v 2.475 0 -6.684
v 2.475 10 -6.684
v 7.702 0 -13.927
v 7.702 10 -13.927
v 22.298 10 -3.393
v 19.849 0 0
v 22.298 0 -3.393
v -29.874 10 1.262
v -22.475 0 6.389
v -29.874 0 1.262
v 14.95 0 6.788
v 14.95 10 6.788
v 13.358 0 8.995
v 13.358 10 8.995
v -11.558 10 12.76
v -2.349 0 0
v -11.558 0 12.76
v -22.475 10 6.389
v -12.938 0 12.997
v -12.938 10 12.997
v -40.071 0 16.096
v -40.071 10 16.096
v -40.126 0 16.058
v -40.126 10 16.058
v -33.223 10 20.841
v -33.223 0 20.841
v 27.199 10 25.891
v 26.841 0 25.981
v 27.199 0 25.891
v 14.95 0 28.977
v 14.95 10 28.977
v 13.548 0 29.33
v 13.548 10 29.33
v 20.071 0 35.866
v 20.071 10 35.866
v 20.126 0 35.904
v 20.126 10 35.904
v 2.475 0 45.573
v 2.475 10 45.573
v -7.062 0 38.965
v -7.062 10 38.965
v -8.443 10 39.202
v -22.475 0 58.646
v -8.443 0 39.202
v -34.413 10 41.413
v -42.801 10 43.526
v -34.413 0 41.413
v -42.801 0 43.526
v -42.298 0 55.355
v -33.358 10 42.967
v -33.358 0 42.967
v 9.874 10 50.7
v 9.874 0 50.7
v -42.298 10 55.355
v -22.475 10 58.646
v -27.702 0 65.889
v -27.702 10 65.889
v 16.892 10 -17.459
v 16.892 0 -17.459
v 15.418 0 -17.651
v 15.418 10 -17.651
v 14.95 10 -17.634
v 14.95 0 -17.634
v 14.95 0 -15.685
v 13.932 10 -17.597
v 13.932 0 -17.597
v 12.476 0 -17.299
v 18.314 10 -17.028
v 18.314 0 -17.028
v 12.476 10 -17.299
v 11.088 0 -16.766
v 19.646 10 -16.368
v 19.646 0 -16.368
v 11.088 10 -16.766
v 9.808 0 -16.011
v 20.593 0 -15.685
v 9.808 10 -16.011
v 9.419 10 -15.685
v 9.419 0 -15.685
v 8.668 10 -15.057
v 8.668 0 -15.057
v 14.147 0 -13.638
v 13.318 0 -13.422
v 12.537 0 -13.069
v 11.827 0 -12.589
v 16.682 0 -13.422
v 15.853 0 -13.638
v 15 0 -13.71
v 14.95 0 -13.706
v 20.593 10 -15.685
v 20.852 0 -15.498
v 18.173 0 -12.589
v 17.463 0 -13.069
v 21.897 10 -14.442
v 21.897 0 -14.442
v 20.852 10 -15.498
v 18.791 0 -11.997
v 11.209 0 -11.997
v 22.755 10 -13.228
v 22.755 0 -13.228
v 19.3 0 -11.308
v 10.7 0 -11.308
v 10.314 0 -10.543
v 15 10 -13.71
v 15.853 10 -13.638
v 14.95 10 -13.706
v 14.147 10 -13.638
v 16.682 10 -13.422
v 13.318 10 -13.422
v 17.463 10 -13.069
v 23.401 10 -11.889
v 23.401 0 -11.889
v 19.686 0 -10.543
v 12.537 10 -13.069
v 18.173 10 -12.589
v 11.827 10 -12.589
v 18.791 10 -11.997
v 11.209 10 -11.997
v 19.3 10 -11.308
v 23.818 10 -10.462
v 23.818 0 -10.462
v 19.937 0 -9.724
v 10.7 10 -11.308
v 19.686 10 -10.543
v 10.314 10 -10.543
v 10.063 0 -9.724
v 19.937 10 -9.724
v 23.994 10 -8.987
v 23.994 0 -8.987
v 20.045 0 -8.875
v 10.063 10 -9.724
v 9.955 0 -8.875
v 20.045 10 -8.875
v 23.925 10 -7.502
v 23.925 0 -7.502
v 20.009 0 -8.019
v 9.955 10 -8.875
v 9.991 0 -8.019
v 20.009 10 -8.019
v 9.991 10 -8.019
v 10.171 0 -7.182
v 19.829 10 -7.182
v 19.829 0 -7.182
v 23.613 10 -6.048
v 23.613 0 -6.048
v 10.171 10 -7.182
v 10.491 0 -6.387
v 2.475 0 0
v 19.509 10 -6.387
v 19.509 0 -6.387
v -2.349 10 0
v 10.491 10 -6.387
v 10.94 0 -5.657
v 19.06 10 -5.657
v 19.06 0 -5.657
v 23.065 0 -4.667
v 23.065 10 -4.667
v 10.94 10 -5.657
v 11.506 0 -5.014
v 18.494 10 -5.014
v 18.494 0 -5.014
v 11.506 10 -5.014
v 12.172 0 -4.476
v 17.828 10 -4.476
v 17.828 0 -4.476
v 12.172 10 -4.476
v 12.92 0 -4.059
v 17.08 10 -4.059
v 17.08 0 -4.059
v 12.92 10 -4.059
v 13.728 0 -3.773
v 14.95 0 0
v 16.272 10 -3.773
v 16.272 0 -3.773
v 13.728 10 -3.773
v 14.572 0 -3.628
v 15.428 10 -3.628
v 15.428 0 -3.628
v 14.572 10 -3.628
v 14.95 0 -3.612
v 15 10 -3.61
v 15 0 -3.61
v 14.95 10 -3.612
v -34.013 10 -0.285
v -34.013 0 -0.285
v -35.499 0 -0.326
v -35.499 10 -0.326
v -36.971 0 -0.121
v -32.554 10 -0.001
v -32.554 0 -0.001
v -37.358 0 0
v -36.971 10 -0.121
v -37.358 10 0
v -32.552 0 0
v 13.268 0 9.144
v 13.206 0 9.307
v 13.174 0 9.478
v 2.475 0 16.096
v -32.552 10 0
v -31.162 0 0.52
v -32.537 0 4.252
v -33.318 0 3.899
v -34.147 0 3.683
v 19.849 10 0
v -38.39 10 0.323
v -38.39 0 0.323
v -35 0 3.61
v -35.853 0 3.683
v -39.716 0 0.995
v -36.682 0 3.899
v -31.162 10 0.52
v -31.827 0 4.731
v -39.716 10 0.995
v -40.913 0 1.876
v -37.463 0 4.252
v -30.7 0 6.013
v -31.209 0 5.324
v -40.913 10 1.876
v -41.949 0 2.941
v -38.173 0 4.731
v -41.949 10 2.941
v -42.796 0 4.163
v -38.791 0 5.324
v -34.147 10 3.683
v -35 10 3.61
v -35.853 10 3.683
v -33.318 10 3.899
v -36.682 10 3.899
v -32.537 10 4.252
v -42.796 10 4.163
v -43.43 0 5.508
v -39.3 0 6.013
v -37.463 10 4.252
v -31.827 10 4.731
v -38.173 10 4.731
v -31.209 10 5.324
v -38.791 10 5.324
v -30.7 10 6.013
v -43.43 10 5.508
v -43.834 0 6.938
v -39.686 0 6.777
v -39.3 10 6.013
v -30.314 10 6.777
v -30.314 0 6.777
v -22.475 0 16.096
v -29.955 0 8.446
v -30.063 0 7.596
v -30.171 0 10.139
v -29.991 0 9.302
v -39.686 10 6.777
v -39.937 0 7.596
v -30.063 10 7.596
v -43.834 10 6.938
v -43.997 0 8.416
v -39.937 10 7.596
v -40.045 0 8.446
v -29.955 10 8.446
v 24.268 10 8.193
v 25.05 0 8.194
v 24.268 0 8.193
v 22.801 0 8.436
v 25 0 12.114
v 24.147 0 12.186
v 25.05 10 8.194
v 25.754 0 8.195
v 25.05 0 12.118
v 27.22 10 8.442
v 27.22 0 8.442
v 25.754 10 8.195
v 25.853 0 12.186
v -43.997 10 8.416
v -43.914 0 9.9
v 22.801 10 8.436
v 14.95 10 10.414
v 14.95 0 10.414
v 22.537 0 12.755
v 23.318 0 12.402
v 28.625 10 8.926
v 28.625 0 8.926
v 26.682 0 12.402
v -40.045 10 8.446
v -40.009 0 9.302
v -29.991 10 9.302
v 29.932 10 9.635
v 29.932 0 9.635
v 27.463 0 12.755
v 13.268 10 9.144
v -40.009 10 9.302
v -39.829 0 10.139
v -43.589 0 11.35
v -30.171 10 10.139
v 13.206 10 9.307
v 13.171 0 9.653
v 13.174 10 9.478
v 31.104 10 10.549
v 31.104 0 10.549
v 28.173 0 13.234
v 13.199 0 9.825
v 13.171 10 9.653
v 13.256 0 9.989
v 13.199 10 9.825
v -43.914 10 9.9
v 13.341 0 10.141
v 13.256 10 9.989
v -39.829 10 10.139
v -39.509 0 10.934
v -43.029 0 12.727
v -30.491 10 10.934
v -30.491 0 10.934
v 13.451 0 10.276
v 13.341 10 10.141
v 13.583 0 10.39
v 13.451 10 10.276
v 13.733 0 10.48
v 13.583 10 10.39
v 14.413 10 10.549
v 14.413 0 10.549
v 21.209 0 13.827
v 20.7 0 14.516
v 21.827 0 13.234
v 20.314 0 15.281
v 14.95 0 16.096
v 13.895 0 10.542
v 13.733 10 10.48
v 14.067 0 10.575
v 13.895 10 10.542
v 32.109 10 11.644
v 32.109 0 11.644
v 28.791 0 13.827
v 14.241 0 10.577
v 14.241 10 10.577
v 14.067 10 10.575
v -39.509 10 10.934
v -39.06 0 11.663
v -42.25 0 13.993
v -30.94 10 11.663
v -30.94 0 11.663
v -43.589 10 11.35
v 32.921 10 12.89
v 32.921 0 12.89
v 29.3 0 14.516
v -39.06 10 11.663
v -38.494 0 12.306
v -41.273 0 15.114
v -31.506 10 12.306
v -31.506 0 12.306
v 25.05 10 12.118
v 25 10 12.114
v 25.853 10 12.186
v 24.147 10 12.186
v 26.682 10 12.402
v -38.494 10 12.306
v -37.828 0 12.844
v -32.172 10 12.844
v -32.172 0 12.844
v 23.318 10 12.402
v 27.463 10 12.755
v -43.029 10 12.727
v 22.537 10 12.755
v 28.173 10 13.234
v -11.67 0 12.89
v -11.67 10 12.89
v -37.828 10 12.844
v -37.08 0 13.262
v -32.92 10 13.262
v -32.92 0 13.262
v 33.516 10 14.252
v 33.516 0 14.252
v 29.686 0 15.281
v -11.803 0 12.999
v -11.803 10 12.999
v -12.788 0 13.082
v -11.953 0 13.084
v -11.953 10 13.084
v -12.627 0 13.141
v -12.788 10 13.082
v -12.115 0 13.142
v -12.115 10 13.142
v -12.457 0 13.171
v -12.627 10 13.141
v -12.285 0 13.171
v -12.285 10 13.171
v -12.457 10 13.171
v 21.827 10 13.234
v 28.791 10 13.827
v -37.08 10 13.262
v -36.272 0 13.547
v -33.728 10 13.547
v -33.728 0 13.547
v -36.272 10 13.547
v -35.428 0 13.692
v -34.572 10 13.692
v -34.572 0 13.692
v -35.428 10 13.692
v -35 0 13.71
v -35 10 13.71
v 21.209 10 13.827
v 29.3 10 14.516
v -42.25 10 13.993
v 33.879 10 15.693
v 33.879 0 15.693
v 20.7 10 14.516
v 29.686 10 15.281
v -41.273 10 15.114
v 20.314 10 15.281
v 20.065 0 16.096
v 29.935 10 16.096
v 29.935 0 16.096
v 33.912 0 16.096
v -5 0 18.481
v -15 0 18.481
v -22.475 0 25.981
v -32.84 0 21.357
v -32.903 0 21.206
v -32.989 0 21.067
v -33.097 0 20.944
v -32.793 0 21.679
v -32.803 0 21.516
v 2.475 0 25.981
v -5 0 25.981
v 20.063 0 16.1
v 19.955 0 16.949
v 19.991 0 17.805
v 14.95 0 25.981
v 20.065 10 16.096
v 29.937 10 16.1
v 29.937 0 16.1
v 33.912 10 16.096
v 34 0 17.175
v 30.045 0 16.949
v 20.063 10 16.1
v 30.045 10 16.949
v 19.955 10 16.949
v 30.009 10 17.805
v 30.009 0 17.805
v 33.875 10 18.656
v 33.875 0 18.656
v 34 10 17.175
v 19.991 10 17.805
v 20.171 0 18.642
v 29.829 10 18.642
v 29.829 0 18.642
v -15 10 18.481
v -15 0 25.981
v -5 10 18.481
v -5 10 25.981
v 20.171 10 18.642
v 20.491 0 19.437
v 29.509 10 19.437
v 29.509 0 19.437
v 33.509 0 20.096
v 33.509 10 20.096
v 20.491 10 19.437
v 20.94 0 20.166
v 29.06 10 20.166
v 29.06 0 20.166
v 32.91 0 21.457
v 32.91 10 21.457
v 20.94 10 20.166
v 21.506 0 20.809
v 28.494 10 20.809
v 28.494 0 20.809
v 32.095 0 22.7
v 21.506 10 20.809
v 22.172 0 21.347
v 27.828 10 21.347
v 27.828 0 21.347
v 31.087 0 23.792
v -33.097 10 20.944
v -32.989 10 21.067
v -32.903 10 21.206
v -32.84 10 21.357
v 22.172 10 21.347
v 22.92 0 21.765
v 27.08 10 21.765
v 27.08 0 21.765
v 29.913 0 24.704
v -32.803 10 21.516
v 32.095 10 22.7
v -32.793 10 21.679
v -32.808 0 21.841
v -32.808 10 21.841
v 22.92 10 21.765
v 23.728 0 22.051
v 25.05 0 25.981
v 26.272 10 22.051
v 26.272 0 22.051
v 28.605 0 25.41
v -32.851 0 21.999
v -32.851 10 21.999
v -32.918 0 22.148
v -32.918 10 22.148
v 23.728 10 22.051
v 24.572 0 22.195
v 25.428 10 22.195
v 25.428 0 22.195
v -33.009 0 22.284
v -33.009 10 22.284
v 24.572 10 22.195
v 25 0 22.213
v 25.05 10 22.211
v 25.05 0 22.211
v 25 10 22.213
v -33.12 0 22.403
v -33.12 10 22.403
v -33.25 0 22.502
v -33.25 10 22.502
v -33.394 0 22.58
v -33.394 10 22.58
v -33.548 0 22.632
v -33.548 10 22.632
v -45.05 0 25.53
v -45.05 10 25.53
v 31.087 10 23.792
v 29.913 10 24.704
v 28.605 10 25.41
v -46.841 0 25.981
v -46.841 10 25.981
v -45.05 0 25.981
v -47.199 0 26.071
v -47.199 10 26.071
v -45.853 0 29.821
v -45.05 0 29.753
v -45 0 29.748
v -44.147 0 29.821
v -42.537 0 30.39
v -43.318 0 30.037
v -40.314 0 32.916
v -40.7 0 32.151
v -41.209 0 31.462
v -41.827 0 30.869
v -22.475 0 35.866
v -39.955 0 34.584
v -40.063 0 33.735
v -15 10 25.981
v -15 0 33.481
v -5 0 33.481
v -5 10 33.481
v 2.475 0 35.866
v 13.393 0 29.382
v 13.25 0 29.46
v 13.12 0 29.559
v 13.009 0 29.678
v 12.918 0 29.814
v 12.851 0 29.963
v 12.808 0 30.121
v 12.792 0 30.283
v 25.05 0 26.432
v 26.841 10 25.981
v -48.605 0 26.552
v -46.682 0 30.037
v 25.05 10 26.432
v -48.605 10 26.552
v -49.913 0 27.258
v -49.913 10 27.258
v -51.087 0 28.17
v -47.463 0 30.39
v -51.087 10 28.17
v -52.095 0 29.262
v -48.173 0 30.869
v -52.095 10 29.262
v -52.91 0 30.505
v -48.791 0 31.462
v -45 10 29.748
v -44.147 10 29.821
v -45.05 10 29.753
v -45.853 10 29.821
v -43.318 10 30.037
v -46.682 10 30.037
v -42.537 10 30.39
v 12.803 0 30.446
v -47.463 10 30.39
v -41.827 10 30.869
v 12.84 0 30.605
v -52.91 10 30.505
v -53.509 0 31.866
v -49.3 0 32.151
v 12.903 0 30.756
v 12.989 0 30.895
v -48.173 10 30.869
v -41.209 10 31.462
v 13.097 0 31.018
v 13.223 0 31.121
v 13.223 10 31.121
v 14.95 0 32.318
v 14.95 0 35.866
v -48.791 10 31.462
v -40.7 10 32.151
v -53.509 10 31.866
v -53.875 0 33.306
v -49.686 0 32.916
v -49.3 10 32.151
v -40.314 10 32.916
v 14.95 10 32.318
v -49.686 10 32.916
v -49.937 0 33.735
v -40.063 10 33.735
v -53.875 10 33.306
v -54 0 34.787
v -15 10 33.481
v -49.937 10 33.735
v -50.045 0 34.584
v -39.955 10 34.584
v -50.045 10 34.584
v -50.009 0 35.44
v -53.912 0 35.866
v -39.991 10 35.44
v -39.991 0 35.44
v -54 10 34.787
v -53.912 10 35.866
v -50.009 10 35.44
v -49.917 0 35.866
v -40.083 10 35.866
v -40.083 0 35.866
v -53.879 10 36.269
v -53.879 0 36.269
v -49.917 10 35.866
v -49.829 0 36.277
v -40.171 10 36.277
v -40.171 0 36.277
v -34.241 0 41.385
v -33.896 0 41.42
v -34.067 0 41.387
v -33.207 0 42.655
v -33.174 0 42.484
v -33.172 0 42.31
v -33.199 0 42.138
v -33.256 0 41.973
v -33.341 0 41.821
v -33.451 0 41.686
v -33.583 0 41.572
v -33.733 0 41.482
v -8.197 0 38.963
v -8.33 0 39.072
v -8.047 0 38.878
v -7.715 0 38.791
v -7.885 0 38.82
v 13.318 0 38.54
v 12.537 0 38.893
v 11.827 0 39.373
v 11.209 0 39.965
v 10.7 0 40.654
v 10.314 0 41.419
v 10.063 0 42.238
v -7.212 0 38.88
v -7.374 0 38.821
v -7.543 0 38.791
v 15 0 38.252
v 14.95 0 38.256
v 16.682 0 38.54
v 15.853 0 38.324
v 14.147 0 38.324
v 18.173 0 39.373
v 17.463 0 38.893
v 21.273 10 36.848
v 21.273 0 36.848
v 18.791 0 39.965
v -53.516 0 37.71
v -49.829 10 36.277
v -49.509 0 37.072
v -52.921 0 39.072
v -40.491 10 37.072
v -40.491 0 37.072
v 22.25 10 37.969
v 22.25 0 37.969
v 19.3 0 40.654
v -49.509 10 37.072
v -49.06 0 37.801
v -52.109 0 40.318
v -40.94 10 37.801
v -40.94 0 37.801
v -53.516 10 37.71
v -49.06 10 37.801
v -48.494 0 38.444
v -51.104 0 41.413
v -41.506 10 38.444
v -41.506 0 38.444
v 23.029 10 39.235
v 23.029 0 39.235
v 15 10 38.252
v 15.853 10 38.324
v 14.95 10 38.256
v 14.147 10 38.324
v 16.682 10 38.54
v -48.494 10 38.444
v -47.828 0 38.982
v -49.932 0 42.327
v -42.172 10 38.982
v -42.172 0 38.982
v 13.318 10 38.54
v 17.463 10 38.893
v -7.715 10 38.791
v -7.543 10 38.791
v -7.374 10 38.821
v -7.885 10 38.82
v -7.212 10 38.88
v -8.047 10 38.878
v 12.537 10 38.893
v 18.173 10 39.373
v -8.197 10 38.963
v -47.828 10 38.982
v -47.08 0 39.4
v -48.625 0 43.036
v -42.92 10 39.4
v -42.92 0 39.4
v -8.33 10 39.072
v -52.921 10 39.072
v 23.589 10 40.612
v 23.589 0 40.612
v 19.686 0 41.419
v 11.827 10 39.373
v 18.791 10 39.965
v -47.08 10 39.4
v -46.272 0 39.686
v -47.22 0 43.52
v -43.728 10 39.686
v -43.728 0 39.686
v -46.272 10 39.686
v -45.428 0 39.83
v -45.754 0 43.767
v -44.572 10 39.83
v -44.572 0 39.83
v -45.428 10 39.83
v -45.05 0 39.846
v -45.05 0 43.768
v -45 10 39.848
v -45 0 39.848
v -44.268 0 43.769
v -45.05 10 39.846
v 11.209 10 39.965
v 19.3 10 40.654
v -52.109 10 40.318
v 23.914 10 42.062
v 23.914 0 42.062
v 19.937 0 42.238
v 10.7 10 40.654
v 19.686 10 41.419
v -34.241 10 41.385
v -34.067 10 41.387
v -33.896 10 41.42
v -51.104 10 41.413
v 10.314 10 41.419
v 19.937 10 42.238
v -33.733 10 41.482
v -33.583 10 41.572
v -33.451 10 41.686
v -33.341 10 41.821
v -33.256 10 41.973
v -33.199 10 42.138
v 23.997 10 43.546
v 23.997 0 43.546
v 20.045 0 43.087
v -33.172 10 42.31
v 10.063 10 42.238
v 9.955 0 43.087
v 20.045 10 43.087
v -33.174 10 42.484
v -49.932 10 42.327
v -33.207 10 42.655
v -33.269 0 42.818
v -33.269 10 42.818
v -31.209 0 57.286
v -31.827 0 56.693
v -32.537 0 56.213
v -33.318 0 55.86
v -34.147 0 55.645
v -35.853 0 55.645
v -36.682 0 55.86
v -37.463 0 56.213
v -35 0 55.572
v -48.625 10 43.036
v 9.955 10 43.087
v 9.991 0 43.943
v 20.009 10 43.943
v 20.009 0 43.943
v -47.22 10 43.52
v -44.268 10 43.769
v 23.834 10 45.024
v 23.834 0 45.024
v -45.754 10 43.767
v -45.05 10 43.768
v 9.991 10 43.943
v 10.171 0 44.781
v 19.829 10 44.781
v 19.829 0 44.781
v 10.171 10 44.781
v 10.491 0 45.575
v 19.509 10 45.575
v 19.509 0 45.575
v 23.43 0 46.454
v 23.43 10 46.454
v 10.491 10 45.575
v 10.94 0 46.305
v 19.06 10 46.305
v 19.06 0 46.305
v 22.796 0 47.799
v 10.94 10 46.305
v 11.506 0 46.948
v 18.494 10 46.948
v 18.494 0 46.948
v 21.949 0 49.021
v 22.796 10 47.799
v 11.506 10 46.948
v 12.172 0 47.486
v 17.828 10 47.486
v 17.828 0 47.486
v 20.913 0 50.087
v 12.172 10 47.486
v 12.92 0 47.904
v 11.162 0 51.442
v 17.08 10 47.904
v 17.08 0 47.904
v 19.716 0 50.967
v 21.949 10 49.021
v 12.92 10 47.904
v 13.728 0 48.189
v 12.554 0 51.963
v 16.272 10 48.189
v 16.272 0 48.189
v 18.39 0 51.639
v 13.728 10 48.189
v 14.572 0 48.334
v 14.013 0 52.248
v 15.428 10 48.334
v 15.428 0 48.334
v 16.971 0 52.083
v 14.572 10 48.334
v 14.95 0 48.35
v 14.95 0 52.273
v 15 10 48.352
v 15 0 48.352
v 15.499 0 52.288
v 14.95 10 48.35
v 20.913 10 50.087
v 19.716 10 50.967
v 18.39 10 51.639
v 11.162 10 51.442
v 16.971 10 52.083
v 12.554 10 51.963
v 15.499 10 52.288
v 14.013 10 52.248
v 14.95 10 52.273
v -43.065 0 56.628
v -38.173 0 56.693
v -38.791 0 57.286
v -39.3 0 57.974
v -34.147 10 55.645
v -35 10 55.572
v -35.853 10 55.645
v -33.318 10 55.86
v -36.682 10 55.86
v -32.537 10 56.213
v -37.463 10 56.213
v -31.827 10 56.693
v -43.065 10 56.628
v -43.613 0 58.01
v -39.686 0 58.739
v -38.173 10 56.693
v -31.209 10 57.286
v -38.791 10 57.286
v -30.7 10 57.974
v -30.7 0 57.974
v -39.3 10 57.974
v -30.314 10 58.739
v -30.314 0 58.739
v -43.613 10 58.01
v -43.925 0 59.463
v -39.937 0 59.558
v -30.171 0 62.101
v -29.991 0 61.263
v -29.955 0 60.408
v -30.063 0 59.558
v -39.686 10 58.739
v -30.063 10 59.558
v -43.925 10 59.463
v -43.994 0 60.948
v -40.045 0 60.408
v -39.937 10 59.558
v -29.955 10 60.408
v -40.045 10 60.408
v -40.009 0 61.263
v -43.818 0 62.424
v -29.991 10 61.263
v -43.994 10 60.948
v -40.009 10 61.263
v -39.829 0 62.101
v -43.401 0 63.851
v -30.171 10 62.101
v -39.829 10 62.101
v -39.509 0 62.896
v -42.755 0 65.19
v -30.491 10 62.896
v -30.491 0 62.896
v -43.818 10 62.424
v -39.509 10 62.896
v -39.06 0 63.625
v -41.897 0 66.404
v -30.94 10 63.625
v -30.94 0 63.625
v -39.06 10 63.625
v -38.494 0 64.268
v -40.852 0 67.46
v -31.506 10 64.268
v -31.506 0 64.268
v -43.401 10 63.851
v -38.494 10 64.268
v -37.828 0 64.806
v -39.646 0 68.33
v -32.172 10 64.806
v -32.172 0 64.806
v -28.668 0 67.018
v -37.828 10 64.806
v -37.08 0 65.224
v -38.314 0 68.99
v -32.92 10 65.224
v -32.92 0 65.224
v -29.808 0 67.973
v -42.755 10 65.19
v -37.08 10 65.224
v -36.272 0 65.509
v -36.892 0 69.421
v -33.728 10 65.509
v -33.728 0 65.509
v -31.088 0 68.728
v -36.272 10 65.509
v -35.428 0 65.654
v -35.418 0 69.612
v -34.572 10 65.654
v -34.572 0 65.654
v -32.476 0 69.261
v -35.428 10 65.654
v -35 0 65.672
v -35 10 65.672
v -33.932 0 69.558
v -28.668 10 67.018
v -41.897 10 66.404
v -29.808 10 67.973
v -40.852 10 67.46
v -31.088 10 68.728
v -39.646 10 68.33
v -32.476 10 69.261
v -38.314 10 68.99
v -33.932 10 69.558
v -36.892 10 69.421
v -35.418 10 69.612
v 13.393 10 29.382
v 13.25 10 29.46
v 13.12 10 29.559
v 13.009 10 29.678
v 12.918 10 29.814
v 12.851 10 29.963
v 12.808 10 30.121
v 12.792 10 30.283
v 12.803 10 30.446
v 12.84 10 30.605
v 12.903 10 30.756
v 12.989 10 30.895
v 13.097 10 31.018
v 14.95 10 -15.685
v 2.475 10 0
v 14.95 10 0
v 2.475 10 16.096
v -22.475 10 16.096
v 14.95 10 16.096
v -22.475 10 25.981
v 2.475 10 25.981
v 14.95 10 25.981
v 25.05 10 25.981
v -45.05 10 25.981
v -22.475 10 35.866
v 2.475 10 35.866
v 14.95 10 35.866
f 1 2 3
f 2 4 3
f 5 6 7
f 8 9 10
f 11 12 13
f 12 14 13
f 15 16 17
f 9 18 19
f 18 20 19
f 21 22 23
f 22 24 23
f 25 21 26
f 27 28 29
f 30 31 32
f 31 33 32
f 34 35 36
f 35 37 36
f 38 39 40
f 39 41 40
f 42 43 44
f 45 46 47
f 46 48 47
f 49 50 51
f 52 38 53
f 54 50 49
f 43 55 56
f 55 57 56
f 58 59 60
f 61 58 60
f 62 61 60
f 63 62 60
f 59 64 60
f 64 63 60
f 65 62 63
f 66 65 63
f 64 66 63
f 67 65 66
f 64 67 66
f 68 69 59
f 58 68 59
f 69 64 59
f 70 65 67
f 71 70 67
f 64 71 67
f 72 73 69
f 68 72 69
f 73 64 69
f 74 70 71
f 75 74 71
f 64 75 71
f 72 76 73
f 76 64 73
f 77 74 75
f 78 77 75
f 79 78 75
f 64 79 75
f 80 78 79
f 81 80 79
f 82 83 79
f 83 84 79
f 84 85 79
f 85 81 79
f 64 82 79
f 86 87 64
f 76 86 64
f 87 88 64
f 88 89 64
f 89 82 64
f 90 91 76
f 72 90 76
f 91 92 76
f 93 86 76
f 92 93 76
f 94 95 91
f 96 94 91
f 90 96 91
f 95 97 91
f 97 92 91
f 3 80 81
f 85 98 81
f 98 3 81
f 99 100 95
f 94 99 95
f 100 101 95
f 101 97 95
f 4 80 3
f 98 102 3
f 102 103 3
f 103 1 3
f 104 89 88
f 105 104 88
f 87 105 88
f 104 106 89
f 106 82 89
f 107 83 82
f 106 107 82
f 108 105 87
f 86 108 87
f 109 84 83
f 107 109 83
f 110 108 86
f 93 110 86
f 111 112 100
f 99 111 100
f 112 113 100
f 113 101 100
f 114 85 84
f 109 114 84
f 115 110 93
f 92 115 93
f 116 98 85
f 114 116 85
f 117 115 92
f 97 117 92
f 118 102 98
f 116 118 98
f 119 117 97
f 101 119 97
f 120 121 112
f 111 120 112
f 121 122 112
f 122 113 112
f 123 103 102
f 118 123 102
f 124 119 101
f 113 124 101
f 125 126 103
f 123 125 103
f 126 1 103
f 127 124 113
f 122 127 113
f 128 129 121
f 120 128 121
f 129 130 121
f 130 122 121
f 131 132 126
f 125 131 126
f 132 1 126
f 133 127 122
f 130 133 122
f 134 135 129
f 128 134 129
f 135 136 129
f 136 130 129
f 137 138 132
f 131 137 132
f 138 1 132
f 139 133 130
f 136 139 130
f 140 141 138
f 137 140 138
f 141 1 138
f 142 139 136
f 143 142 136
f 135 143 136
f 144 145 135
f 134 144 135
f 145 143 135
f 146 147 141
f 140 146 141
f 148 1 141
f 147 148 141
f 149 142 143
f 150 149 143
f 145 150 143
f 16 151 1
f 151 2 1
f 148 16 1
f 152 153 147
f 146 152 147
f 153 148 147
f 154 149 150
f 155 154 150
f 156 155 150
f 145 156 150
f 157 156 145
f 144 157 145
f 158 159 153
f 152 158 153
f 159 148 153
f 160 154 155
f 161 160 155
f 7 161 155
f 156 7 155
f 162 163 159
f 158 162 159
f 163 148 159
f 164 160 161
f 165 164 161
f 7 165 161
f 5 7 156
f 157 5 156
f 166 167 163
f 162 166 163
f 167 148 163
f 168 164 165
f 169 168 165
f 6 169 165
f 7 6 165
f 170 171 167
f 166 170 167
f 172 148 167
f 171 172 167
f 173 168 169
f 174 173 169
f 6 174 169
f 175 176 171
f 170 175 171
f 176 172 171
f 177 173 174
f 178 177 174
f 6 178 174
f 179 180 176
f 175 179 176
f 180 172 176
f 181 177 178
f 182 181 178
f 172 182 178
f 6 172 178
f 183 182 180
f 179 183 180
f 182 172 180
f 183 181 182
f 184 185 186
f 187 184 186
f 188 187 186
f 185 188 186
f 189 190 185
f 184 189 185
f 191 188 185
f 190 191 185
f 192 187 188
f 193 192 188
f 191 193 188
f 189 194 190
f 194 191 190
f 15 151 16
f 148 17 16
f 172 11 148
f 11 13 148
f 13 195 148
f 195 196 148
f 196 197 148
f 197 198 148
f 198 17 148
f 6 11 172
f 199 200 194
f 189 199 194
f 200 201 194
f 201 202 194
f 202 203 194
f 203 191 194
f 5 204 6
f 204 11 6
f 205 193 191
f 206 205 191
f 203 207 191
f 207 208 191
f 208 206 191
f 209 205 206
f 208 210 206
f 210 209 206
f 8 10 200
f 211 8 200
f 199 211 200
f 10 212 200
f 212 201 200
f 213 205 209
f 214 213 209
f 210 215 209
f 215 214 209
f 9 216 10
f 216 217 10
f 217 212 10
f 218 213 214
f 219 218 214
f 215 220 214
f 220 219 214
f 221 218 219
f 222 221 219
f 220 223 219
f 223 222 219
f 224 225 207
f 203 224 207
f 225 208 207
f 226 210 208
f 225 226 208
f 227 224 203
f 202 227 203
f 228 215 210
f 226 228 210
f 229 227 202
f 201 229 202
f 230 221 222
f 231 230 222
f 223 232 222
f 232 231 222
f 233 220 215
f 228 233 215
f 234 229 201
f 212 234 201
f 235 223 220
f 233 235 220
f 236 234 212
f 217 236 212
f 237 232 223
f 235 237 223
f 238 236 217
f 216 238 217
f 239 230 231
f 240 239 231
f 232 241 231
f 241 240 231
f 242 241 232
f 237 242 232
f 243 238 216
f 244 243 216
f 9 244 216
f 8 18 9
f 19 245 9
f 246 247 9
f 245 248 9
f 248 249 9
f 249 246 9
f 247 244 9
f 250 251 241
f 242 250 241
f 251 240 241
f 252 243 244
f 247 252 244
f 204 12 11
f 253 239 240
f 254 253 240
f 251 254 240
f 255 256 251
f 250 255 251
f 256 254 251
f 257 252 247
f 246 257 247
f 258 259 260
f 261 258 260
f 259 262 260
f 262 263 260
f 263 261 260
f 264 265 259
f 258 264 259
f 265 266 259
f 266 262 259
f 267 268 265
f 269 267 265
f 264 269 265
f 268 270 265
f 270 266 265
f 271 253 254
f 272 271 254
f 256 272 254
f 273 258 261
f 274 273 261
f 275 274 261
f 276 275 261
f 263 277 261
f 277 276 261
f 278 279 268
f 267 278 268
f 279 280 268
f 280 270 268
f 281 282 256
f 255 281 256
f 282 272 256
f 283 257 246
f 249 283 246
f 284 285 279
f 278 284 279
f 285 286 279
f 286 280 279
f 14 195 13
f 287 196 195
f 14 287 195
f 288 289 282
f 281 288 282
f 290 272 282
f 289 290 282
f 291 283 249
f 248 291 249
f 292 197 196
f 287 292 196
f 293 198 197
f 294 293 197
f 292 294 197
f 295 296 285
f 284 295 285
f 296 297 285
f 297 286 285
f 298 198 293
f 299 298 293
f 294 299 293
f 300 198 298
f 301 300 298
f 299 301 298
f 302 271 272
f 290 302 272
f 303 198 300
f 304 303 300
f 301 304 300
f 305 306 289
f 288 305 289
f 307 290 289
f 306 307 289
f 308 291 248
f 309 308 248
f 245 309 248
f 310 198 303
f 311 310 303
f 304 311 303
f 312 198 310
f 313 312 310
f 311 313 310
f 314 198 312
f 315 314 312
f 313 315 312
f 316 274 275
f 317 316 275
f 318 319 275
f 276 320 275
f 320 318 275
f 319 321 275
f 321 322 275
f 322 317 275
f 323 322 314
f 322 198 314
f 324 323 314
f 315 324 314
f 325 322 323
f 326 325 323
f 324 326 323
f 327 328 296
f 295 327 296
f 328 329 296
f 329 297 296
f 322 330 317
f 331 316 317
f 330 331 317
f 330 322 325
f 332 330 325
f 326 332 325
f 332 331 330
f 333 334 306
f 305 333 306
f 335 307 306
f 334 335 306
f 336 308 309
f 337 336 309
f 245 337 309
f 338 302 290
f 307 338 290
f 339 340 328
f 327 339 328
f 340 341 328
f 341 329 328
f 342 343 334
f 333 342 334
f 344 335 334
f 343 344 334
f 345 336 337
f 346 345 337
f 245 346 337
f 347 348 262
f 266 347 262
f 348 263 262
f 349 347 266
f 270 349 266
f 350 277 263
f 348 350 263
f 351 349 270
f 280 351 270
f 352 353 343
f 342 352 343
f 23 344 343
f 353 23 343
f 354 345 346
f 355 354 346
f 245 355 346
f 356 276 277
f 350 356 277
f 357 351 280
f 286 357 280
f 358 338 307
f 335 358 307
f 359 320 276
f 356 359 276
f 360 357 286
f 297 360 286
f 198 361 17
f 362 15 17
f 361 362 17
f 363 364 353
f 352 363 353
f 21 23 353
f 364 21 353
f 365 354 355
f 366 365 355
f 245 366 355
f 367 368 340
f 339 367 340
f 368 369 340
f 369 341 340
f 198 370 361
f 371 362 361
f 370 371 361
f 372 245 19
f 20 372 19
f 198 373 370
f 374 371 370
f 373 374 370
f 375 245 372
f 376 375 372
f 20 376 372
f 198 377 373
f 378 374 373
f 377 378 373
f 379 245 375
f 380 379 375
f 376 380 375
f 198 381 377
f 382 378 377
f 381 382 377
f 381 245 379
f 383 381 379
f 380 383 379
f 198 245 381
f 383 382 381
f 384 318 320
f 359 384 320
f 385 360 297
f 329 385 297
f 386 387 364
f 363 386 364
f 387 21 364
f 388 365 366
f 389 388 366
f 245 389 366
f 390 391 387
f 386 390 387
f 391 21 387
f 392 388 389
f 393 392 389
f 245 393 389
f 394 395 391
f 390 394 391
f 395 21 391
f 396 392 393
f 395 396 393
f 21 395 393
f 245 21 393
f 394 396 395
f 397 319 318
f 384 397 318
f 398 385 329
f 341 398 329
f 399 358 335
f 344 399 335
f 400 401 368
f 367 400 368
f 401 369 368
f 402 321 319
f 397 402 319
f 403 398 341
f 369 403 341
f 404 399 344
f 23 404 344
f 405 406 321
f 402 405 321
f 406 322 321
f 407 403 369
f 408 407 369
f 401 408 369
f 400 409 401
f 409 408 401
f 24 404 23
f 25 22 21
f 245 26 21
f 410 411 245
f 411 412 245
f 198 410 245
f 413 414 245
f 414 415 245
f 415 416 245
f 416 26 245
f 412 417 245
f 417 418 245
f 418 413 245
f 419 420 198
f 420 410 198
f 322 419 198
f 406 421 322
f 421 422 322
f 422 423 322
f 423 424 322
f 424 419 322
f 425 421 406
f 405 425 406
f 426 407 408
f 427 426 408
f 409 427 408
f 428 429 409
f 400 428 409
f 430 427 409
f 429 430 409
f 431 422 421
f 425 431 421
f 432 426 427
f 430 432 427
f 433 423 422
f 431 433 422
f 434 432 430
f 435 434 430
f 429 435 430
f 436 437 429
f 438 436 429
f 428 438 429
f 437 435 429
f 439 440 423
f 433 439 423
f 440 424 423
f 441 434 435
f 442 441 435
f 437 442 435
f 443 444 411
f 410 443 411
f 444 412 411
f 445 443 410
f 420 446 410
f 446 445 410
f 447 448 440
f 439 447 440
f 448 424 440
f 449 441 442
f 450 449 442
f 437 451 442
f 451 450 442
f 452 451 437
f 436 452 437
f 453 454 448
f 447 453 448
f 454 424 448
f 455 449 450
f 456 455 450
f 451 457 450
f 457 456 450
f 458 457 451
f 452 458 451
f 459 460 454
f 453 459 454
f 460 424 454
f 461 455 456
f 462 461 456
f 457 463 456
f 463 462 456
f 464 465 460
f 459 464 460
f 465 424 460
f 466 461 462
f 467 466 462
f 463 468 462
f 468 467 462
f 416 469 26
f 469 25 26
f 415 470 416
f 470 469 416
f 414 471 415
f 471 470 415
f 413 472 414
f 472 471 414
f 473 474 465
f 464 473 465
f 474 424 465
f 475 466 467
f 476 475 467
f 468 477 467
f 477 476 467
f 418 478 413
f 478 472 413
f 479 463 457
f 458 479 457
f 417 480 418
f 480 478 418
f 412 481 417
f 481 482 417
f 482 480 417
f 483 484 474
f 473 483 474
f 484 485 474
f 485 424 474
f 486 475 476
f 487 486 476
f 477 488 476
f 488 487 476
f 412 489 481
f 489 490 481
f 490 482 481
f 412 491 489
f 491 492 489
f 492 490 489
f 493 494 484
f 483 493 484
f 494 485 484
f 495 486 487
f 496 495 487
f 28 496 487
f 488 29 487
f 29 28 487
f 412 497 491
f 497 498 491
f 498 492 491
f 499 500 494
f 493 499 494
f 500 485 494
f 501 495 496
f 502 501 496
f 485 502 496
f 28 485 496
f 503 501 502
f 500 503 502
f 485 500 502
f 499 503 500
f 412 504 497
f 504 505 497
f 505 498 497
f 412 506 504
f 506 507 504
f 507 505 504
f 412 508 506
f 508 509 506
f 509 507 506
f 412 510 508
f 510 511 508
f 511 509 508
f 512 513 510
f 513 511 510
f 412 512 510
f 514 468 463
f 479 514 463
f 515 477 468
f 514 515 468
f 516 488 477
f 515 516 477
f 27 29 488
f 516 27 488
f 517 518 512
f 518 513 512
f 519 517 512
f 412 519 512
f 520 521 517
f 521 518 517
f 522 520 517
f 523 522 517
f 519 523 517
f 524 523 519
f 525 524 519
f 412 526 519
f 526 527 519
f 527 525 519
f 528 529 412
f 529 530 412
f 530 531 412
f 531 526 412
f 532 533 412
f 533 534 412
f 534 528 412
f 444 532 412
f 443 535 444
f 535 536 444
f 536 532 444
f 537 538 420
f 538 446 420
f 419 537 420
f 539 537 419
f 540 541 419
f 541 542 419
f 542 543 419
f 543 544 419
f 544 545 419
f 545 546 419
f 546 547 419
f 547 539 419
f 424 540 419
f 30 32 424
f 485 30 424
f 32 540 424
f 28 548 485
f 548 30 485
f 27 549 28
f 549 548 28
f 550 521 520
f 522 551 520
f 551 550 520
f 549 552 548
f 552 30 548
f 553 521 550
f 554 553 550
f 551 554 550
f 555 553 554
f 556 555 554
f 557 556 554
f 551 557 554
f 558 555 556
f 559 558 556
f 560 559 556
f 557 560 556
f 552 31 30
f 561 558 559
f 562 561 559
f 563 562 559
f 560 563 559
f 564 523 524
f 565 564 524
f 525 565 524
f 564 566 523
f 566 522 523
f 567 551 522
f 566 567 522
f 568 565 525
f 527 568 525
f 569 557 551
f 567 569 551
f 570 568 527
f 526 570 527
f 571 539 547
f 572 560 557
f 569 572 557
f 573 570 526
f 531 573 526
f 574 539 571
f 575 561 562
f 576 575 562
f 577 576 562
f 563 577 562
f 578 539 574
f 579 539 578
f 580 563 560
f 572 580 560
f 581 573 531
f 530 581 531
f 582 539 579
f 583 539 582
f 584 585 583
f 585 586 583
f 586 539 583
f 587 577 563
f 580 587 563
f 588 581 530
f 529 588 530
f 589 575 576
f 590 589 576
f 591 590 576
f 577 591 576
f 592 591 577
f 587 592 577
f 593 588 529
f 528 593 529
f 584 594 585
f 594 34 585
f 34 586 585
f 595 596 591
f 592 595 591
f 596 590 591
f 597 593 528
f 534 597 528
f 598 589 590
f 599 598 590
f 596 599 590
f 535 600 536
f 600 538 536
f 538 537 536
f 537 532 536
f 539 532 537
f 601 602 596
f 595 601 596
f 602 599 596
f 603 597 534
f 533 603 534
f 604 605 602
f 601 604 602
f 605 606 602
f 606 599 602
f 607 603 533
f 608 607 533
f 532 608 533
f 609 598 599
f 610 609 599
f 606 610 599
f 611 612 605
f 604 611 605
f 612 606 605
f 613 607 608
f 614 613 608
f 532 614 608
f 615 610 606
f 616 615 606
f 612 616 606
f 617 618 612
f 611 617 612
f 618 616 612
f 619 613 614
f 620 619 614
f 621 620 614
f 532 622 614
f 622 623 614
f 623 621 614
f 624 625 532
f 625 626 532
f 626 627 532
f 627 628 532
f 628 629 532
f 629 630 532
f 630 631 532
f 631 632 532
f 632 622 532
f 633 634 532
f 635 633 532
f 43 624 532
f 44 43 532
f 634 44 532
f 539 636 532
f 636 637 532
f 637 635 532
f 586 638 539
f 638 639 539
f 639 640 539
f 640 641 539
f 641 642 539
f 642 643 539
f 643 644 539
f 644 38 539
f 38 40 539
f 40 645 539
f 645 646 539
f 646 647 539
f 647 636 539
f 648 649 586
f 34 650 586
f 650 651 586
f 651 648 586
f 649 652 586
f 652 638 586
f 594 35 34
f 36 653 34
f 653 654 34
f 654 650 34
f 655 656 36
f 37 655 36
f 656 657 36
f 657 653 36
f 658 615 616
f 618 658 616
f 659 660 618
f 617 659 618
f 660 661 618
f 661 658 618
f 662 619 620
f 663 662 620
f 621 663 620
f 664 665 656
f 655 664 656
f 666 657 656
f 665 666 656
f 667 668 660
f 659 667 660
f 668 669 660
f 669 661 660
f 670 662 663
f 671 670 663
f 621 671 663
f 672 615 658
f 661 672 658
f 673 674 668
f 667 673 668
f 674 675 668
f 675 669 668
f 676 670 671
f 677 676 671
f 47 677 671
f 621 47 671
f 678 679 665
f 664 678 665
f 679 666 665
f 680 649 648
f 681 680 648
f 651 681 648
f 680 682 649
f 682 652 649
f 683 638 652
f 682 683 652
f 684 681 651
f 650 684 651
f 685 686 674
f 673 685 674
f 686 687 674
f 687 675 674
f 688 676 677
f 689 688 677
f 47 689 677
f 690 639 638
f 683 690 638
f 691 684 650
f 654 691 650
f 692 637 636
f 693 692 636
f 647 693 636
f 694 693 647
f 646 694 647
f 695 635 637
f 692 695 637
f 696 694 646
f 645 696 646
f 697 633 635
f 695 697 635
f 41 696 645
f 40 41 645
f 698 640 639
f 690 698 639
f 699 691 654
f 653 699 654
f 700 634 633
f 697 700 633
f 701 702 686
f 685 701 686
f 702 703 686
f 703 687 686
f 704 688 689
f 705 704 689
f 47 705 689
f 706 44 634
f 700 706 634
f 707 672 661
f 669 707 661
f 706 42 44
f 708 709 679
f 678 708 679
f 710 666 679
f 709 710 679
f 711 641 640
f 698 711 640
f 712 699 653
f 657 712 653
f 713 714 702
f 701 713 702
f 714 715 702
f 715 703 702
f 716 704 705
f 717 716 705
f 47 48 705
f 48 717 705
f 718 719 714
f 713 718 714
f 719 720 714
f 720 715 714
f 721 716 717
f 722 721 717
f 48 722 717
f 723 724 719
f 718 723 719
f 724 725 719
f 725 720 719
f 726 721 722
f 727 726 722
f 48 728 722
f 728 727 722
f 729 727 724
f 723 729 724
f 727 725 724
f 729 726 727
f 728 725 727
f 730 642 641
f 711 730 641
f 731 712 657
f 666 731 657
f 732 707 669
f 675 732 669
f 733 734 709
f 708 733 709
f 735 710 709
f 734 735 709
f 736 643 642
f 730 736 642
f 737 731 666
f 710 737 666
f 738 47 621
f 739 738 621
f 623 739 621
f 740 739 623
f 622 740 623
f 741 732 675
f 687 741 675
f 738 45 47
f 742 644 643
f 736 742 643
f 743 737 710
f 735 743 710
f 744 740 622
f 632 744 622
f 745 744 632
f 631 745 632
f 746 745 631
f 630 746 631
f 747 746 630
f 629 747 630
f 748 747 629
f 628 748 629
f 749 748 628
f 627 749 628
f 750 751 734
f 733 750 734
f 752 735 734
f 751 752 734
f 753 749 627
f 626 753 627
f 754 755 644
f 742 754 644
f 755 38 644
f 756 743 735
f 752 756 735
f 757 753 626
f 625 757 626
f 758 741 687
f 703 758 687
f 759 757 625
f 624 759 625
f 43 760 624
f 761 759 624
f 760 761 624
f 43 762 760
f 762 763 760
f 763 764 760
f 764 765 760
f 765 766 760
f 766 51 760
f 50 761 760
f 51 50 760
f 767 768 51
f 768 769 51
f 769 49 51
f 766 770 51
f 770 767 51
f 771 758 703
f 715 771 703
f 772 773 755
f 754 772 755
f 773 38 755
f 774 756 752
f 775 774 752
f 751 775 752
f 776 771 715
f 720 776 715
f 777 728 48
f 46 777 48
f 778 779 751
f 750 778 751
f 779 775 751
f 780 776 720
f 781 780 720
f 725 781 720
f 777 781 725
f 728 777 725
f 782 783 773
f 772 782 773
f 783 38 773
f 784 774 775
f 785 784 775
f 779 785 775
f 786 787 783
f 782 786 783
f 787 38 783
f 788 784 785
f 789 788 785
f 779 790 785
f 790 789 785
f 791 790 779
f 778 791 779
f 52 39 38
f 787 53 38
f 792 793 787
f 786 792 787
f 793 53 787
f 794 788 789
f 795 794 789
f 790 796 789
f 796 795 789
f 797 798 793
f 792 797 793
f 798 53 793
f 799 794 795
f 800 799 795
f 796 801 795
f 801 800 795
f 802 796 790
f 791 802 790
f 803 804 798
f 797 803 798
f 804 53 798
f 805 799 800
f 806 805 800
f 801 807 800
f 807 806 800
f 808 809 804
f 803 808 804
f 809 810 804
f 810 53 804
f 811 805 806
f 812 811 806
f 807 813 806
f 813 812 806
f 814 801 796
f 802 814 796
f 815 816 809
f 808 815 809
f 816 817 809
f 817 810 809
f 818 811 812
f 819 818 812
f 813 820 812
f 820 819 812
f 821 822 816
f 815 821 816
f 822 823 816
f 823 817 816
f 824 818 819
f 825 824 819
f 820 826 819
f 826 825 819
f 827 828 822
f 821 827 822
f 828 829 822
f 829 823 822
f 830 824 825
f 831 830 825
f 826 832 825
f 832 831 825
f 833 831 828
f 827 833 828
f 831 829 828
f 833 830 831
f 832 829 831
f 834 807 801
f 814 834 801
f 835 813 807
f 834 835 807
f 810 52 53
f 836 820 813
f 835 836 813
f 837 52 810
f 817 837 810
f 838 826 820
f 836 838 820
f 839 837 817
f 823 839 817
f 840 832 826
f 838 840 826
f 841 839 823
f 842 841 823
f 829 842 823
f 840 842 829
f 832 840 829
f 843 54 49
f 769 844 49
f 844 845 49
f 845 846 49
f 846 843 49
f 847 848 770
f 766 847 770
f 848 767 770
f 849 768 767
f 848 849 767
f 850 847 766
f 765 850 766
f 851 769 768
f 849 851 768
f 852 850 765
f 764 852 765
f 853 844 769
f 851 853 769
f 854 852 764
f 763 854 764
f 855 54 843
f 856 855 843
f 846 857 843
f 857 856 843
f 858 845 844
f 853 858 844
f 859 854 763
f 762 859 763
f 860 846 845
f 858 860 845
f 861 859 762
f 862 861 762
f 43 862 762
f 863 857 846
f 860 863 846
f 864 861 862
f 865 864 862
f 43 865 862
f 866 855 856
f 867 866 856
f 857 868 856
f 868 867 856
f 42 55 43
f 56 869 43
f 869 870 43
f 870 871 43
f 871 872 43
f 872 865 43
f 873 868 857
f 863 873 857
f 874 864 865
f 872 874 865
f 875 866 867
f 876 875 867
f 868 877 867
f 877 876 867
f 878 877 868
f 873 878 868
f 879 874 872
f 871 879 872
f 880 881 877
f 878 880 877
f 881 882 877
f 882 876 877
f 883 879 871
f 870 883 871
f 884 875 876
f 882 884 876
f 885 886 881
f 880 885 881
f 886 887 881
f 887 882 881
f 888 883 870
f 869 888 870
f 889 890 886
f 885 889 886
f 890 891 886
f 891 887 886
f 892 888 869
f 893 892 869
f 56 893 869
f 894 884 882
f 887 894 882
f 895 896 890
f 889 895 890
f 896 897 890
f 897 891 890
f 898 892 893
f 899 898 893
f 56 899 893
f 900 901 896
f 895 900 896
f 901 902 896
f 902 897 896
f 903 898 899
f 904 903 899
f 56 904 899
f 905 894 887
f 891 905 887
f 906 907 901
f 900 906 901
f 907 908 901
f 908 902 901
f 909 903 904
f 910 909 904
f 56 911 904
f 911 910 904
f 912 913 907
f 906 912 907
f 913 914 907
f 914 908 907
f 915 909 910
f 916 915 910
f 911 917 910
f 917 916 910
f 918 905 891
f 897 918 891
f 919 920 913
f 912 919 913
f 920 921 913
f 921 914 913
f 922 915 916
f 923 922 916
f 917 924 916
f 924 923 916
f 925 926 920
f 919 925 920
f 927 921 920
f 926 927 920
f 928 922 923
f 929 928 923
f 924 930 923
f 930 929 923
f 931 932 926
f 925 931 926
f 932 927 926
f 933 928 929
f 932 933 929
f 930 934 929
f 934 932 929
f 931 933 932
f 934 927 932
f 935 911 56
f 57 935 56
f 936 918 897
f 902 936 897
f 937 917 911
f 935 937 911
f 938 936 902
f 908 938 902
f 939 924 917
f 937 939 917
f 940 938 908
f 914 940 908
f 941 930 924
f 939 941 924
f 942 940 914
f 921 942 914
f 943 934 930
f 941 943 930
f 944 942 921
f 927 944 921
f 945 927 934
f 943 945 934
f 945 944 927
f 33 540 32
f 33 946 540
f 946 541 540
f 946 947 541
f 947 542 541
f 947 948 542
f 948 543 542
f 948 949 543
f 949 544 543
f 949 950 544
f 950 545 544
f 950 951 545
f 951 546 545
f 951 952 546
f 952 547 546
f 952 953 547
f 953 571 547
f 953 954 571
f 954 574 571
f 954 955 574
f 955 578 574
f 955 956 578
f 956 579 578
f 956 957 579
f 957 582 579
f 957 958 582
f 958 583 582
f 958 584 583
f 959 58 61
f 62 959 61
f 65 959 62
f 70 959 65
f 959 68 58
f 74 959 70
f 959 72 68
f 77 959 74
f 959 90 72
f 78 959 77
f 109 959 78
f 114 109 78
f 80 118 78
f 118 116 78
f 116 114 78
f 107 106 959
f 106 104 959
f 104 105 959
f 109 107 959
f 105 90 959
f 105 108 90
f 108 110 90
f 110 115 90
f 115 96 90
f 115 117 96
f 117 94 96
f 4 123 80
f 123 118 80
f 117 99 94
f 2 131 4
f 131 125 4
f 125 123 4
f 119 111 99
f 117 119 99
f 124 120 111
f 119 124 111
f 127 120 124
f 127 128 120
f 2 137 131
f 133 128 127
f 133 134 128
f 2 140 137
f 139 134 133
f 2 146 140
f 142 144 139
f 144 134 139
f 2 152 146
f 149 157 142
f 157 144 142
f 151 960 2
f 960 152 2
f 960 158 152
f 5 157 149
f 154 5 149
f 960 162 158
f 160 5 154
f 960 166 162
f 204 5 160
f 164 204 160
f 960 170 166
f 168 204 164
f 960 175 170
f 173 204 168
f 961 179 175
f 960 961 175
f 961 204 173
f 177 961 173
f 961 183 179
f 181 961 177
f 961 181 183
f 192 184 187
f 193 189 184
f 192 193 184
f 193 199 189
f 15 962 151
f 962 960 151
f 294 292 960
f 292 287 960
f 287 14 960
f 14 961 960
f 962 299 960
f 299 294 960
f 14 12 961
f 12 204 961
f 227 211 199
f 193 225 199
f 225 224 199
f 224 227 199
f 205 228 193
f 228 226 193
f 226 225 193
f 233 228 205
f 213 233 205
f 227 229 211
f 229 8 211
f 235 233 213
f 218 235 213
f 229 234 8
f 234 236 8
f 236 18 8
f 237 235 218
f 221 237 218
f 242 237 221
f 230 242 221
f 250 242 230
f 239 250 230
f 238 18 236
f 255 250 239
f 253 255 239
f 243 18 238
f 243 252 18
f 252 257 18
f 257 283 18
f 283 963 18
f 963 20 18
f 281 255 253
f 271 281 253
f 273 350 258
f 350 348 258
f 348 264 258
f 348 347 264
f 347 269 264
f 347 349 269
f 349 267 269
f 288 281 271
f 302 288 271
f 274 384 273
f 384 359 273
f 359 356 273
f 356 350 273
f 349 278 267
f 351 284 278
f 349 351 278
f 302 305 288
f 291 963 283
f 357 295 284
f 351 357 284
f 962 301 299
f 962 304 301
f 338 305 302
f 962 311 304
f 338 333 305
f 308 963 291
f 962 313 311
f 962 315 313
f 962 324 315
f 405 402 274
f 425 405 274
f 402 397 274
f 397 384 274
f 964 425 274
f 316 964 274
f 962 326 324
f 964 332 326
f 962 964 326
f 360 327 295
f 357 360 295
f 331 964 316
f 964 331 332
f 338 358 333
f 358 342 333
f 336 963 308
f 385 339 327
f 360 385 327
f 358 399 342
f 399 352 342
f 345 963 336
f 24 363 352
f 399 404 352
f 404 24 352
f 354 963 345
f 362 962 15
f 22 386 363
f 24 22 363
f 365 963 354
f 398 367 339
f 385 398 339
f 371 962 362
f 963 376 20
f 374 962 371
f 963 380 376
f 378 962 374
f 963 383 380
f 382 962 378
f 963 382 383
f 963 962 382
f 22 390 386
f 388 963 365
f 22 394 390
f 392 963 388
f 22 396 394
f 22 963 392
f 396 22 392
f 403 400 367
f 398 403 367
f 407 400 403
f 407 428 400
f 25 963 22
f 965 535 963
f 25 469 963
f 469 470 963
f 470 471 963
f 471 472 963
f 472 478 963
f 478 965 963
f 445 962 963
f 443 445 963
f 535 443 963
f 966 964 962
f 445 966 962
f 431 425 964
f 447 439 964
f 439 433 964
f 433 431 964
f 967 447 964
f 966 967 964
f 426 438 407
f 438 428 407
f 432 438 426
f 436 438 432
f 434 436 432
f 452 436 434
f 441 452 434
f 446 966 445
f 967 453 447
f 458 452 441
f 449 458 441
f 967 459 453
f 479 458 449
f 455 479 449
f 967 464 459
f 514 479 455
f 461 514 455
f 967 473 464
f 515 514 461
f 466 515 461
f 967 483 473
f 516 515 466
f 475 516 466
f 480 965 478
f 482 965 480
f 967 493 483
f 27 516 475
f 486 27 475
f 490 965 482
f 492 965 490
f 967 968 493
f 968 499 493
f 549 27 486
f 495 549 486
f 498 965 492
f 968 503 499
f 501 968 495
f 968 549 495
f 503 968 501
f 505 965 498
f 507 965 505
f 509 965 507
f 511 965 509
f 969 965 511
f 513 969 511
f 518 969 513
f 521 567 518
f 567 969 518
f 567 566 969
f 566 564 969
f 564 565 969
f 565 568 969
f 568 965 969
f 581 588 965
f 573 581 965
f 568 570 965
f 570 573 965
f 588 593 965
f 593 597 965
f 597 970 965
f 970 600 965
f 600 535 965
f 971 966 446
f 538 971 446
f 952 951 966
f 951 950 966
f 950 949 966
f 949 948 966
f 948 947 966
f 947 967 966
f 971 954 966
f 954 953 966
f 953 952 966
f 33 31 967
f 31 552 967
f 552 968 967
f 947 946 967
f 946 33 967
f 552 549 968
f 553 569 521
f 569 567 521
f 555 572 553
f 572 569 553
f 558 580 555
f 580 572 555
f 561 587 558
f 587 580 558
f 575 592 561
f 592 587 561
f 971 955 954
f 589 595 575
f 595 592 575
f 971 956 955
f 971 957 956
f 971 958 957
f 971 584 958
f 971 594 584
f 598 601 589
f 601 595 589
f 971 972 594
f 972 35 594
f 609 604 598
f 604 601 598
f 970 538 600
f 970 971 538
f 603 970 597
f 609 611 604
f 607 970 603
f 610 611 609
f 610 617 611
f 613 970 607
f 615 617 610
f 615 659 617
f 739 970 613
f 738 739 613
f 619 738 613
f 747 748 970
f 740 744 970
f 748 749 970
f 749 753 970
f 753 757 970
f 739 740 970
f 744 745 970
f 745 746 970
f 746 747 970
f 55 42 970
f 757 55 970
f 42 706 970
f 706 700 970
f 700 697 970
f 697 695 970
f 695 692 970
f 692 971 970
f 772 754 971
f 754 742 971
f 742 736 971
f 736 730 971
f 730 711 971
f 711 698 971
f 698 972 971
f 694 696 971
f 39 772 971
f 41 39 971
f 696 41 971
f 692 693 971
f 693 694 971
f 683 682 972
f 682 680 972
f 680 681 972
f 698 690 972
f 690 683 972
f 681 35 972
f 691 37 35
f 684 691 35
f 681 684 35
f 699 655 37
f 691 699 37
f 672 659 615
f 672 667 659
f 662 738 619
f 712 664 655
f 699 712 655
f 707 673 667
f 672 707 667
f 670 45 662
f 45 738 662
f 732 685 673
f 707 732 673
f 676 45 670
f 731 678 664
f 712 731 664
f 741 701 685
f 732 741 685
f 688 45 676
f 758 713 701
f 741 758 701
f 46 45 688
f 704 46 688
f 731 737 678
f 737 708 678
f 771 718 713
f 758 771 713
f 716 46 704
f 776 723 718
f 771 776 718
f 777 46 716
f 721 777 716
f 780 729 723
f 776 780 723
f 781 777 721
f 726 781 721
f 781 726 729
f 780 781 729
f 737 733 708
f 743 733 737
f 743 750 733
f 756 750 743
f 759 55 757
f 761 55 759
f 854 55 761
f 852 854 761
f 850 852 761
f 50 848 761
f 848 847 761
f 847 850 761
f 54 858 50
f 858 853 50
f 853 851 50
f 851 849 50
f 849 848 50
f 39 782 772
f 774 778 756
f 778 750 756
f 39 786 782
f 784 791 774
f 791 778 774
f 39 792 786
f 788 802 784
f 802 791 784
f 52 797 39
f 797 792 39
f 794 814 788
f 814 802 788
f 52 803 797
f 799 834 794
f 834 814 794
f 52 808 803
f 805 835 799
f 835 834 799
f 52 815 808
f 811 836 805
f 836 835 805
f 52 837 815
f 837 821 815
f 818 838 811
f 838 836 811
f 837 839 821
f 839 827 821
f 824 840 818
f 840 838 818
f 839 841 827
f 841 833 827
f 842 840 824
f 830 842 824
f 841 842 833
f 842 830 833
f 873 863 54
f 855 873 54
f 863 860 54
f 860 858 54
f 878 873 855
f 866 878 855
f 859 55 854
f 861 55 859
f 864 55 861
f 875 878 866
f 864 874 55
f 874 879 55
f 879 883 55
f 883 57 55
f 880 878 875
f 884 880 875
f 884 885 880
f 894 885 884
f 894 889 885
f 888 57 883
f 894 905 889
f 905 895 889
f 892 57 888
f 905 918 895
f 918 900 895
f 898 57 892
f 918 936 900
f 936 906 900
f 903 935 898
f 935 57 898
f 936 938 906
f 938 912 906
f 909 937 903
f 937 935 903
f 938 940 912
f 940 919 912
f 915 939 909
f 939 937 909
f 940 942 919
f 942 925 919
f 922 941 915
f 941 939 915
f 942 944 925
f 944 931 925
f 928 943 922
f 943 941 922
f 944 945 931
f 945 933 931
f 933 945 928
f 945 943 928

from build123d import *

# Parameters (mm, degrees)
SKETCH1_R           = 5.05
BOSS_EXTRUDE1_DEPTH = 10
FILLET1_R           = 1


with BuildPart() as part:
    # Sketch1 → Boss-Extrude1 (new body)
    # profile 1 of 14: a face of its own
    with BuildSketch(Plane(origin=(0, 0, 0), x_dir=(1, 0, 0), z_dir=(0, 1, 0))):
        Polygon((2.667006003, -23.808109615), (-5, -18.496177846), (-5, -33.48105), (-14.97816514, -33.48105), (-11.765381702, -35.706962749), (-4.621337732, -33.907173957), align=None)
    # profile 2 of 14: a face of its own
    with BuildSketch(Plane(origin=(0, 0, 0), x_dir=(1, 0, 0), z_dir=(0, 1, 0))):
        Polygon((-5.02183486, -18.48105), (-8.234724145, -16.255063917), (-15.378926884, -18.054892707), (-22.667198451, -28.153857051), (-15, -33.465922154), (-15, -18.48105), align=None)
    # profile 3 of 14: a face of its own
    with BuildSketch(Plane(origin=(0, 0, 0), x_dir=(1, 0, 0), z_dir=(0, 1, 0))):
        Polygon((-8.234724145, -16.255063917), (-12.131573163, -13.555210012), (-15.378926884, -18.054892707), align=None)
    # profile 4 of 14: a face of its own
    with BuildSketch(Plane(origin=(0, 0, 0), x_dir=(1, 0, 0), z_dir=(0, 1, 0))):
        Polygon((-7.868619286, -38.406756654), (-4.621337732, -33.907173957), (-11.765381702, -35.706962749), align=None)
    # profile 5 of 14: a face of its own
    with BuildSketch(Plane(origin=(0, 0, 0), x_dir=(1, 0, 0), z_dir=(0, 1, 0))):
        Polygon((-15, -33.465922154), (-22.667198451, -28.153857051), (-31.751988504, -40.742160048), (-11.765381702, -35.706962749), (-14.97816514, -33.48105), (-15, -33.48105), align=None)
    # profile 6 of 14: a face of its own
    with BuildSketch(Plane(origin=(0, 0, 0), x_dir=(1, 0, 0), z_dir=(0, 1, 0))):
        Polygon((-22.667198451, -28.153857051), (-15.378926884, -18.054892707), (-31.413179434, -22.094379046), align=None)
    # profile 7 of 14: a face of its own
    with BuildSketch(Plane(origin=(0, 0, 0), x_dir=(1, 0, 0), z_dir=(0, 1, 0))):
        Polygon((11.413073587, -29.86764762), (2.667006003, -23.808109615), (-4.621337732, -33.907173957), align=None)
    # profile 8 of 14: a face of its own
    with BuildSketch(Plane(origin=(0, 0, 0), x_dir=(1, 0, 0), z_dir=(0, 1, 0))):
        Polygon((11.751723888, -11.219906616), (-8.234724145, -16.255063917), (-5.02183486, -18.48105), (-5, -18.48105), (-5, -18.496177846), (2.667006003, -23.808109615), align=None)
    # profile 9 of 14: a face of its own
    with BuildSketch(Plane(origin=(0, 0, 0), x_dir=(1, 0, 0), z_dir=(0, 1, 0))):
        with BuildLine():
            Line((7.702026656, 13.927138243), (-12.131573163, -13.555210012))
            Line((-12.131573163, -13.555210012), (-8.234724145, -16.255063917))
            Line((-8.234724145, -16.255063917), (11.751723888, -11.219906616))
            Line((11.751723888, -11.219906616), (22.297973344, 3.393461757))
            ThreePointArc((22.297973344, 3.393461757), (20.266838243, 15.958273344), (7.702026656, 13.927138243))
        make_face()
        with Locations(Location((15, 8.6603, 0), (0, 0, 270))):
            Circle(SKETCH1_R, mode=Mode.SUBTRACT)
    # profile 10 of 14: a face of its own
    with BuildSketch(Plane(origin=(0, 0, 0), x_dir=(1, 0, 0), z_dir=(0, 1, 0))):
        with BuildLine():
            Line((-12.131573163, -13.555210012), (-29.874498452, -1.262379084))
            ThreePointArc((-29.874498452, -1.262379084), (-42.397920916, -3.534798452), (-40.125501548, -16.058220916))
            Line((-40.125501548, -16.058220916), (-31.413179434, -22.094379046))
            Line((-31.413179434, -22.094379046), (-15.378926884, -18.054892707))
            Line((-15.378926884, -18.054892707), (-12.131573163, -13.555210012))
        make_face()
        with Locations(Location((-35, -8.6603, 0), (0, 0, 270))):
            Circle(SKETCH1_R, mode=Mode.SUBTRACT)
    # profile 11 of 14: a face of its own
    with BuildSketch(Plane(origin=(0, 0, 0), x_dir=(1, 0, 0), z_dir=(0, 1, 0))):
        with BuildLine():
            Line((22.801341803, -8.43619216), (11.751723888, -11.219906616))
            Line((11.751723888, -11.219906616), (2.667006003, -23.808109615))
            Line((2.667006003, -23.808109615), (11.413073587, -29.86764762))
            Line((11.413073587, -29.86764762), (27.198658197, -25.89080784))
            ThreePointArc((27.198658197, -25.89080784), (33.72730784, -14.964841803), (22.801341803, -8.43619216))
        make_face()
        with Locations(Location((25, -17.1635, 0), (0, 0, 270))):
            Circle(SKETCH1_R, mode=Mode.SUBTRACT)
    # profile 12 of 14: a face of its own
    with BuildSketch(Plane(origin=(0, 0, 0), x_dir=(1, 0, 0), z_dir=(0, 1, 0))):
        with BuildLine():
            Line((20.125501548, -35.903879084), (11.413073587, -29.86764762))
            Line((11.413073587, -29.86764762), (-4.621337732, -33.907173957))
            Line((-4.621337732, -33.907173957), (-7.868619286, -38.406756654))
            Line((-7.868619286, -38.406756654), (9.874498452, -50.699720916))
            ThreePointArc((9.874498452, -50.699720916), (22.397920916, -48.427301548), (20.125501548, -35.903879084))
        make_face()
        with Locations(Location((15, -43.3018, 0), (0, 0, 270))):
            Circle(SKETCH1_R, mode=Mode.SUBTRACT)
    # profile 13 of 14: a face of its own
    with BuildSketch(Plane(origin=(0, 0, 0), x_dir=(1, 0, 0), z_dir=(0, 1, 0))):
        with BuildLine():
            Line((-11.765381702, -35.706962749), (-31.751988504, -40.742160048))
            Line((-31.751988504, -40.742160048), (-42.297973344, -55.355161757))
            ThreePointArc((-42.297973344, -55.355161757), (-40.266838243, -67.919973344), (-27.702026656, -65.888838243))
            Line((-27.702026656, -65.888838243), (-7.868619286, -38.406756654))
            Line((-7.868619286, -38.406756654), (-11.765381702, -35.706962749))
        make_face()
        with Locations(Location((-35, -60.622, 0), (0, 0, 270))):
            Circle(SKETCH1_R, mode=Mode.SUBTRACT)
    # profile 14 of 14: a face of its own
    with BuildSketch(Plane(origin=(0, 0, 0), x_dir=(1, 0, 0), z_dir=(0, 1, 0))):
        with BuildLine():
            Line((-22.667198451, -28.153857051), (-31.413179434, -22.094379046))
            Line((-31.413179434, -22.094379046), (-47.198658197, -26.07119216))
            ThreePointArc((-47.198658197, -26.07119216), (-53.72730784, -36.997158197), (-42.801341803, -43.52580784))
            Line((-42.801341803, -43.52580784), (-31.751988504, -40.742160048))
            Line((-31.751988504, -40.742160048), (-22.667198451, -28.153857051))
        make_face()
        with Locations(Location((-45, -34.7985, 0), (0, 0, 270))):
            Circle(SKETCH1_R, mode=Mode.SUBTRACT)
    extrude(amount=BOSS_EXTRUDE1_DEPTH)

    # Fillet1
    fillet1_edges = [part.edges().sort_by_distance(p)[0] for p in [
        (-31.751988504, 5, 40.742160048),
        (-31.413179434, 5, 22.094379046),
        (-12.131573163, 5, 13.555210012),
        (11.751723888, 5, 11.219906616),
        (11.413073587, 5, 29.86764762),
        (-7.868619286, 5, 38.406756654),
    ]]
    fillet(fillet1_edges, radius=FILLET1_R)


solid = part.part
